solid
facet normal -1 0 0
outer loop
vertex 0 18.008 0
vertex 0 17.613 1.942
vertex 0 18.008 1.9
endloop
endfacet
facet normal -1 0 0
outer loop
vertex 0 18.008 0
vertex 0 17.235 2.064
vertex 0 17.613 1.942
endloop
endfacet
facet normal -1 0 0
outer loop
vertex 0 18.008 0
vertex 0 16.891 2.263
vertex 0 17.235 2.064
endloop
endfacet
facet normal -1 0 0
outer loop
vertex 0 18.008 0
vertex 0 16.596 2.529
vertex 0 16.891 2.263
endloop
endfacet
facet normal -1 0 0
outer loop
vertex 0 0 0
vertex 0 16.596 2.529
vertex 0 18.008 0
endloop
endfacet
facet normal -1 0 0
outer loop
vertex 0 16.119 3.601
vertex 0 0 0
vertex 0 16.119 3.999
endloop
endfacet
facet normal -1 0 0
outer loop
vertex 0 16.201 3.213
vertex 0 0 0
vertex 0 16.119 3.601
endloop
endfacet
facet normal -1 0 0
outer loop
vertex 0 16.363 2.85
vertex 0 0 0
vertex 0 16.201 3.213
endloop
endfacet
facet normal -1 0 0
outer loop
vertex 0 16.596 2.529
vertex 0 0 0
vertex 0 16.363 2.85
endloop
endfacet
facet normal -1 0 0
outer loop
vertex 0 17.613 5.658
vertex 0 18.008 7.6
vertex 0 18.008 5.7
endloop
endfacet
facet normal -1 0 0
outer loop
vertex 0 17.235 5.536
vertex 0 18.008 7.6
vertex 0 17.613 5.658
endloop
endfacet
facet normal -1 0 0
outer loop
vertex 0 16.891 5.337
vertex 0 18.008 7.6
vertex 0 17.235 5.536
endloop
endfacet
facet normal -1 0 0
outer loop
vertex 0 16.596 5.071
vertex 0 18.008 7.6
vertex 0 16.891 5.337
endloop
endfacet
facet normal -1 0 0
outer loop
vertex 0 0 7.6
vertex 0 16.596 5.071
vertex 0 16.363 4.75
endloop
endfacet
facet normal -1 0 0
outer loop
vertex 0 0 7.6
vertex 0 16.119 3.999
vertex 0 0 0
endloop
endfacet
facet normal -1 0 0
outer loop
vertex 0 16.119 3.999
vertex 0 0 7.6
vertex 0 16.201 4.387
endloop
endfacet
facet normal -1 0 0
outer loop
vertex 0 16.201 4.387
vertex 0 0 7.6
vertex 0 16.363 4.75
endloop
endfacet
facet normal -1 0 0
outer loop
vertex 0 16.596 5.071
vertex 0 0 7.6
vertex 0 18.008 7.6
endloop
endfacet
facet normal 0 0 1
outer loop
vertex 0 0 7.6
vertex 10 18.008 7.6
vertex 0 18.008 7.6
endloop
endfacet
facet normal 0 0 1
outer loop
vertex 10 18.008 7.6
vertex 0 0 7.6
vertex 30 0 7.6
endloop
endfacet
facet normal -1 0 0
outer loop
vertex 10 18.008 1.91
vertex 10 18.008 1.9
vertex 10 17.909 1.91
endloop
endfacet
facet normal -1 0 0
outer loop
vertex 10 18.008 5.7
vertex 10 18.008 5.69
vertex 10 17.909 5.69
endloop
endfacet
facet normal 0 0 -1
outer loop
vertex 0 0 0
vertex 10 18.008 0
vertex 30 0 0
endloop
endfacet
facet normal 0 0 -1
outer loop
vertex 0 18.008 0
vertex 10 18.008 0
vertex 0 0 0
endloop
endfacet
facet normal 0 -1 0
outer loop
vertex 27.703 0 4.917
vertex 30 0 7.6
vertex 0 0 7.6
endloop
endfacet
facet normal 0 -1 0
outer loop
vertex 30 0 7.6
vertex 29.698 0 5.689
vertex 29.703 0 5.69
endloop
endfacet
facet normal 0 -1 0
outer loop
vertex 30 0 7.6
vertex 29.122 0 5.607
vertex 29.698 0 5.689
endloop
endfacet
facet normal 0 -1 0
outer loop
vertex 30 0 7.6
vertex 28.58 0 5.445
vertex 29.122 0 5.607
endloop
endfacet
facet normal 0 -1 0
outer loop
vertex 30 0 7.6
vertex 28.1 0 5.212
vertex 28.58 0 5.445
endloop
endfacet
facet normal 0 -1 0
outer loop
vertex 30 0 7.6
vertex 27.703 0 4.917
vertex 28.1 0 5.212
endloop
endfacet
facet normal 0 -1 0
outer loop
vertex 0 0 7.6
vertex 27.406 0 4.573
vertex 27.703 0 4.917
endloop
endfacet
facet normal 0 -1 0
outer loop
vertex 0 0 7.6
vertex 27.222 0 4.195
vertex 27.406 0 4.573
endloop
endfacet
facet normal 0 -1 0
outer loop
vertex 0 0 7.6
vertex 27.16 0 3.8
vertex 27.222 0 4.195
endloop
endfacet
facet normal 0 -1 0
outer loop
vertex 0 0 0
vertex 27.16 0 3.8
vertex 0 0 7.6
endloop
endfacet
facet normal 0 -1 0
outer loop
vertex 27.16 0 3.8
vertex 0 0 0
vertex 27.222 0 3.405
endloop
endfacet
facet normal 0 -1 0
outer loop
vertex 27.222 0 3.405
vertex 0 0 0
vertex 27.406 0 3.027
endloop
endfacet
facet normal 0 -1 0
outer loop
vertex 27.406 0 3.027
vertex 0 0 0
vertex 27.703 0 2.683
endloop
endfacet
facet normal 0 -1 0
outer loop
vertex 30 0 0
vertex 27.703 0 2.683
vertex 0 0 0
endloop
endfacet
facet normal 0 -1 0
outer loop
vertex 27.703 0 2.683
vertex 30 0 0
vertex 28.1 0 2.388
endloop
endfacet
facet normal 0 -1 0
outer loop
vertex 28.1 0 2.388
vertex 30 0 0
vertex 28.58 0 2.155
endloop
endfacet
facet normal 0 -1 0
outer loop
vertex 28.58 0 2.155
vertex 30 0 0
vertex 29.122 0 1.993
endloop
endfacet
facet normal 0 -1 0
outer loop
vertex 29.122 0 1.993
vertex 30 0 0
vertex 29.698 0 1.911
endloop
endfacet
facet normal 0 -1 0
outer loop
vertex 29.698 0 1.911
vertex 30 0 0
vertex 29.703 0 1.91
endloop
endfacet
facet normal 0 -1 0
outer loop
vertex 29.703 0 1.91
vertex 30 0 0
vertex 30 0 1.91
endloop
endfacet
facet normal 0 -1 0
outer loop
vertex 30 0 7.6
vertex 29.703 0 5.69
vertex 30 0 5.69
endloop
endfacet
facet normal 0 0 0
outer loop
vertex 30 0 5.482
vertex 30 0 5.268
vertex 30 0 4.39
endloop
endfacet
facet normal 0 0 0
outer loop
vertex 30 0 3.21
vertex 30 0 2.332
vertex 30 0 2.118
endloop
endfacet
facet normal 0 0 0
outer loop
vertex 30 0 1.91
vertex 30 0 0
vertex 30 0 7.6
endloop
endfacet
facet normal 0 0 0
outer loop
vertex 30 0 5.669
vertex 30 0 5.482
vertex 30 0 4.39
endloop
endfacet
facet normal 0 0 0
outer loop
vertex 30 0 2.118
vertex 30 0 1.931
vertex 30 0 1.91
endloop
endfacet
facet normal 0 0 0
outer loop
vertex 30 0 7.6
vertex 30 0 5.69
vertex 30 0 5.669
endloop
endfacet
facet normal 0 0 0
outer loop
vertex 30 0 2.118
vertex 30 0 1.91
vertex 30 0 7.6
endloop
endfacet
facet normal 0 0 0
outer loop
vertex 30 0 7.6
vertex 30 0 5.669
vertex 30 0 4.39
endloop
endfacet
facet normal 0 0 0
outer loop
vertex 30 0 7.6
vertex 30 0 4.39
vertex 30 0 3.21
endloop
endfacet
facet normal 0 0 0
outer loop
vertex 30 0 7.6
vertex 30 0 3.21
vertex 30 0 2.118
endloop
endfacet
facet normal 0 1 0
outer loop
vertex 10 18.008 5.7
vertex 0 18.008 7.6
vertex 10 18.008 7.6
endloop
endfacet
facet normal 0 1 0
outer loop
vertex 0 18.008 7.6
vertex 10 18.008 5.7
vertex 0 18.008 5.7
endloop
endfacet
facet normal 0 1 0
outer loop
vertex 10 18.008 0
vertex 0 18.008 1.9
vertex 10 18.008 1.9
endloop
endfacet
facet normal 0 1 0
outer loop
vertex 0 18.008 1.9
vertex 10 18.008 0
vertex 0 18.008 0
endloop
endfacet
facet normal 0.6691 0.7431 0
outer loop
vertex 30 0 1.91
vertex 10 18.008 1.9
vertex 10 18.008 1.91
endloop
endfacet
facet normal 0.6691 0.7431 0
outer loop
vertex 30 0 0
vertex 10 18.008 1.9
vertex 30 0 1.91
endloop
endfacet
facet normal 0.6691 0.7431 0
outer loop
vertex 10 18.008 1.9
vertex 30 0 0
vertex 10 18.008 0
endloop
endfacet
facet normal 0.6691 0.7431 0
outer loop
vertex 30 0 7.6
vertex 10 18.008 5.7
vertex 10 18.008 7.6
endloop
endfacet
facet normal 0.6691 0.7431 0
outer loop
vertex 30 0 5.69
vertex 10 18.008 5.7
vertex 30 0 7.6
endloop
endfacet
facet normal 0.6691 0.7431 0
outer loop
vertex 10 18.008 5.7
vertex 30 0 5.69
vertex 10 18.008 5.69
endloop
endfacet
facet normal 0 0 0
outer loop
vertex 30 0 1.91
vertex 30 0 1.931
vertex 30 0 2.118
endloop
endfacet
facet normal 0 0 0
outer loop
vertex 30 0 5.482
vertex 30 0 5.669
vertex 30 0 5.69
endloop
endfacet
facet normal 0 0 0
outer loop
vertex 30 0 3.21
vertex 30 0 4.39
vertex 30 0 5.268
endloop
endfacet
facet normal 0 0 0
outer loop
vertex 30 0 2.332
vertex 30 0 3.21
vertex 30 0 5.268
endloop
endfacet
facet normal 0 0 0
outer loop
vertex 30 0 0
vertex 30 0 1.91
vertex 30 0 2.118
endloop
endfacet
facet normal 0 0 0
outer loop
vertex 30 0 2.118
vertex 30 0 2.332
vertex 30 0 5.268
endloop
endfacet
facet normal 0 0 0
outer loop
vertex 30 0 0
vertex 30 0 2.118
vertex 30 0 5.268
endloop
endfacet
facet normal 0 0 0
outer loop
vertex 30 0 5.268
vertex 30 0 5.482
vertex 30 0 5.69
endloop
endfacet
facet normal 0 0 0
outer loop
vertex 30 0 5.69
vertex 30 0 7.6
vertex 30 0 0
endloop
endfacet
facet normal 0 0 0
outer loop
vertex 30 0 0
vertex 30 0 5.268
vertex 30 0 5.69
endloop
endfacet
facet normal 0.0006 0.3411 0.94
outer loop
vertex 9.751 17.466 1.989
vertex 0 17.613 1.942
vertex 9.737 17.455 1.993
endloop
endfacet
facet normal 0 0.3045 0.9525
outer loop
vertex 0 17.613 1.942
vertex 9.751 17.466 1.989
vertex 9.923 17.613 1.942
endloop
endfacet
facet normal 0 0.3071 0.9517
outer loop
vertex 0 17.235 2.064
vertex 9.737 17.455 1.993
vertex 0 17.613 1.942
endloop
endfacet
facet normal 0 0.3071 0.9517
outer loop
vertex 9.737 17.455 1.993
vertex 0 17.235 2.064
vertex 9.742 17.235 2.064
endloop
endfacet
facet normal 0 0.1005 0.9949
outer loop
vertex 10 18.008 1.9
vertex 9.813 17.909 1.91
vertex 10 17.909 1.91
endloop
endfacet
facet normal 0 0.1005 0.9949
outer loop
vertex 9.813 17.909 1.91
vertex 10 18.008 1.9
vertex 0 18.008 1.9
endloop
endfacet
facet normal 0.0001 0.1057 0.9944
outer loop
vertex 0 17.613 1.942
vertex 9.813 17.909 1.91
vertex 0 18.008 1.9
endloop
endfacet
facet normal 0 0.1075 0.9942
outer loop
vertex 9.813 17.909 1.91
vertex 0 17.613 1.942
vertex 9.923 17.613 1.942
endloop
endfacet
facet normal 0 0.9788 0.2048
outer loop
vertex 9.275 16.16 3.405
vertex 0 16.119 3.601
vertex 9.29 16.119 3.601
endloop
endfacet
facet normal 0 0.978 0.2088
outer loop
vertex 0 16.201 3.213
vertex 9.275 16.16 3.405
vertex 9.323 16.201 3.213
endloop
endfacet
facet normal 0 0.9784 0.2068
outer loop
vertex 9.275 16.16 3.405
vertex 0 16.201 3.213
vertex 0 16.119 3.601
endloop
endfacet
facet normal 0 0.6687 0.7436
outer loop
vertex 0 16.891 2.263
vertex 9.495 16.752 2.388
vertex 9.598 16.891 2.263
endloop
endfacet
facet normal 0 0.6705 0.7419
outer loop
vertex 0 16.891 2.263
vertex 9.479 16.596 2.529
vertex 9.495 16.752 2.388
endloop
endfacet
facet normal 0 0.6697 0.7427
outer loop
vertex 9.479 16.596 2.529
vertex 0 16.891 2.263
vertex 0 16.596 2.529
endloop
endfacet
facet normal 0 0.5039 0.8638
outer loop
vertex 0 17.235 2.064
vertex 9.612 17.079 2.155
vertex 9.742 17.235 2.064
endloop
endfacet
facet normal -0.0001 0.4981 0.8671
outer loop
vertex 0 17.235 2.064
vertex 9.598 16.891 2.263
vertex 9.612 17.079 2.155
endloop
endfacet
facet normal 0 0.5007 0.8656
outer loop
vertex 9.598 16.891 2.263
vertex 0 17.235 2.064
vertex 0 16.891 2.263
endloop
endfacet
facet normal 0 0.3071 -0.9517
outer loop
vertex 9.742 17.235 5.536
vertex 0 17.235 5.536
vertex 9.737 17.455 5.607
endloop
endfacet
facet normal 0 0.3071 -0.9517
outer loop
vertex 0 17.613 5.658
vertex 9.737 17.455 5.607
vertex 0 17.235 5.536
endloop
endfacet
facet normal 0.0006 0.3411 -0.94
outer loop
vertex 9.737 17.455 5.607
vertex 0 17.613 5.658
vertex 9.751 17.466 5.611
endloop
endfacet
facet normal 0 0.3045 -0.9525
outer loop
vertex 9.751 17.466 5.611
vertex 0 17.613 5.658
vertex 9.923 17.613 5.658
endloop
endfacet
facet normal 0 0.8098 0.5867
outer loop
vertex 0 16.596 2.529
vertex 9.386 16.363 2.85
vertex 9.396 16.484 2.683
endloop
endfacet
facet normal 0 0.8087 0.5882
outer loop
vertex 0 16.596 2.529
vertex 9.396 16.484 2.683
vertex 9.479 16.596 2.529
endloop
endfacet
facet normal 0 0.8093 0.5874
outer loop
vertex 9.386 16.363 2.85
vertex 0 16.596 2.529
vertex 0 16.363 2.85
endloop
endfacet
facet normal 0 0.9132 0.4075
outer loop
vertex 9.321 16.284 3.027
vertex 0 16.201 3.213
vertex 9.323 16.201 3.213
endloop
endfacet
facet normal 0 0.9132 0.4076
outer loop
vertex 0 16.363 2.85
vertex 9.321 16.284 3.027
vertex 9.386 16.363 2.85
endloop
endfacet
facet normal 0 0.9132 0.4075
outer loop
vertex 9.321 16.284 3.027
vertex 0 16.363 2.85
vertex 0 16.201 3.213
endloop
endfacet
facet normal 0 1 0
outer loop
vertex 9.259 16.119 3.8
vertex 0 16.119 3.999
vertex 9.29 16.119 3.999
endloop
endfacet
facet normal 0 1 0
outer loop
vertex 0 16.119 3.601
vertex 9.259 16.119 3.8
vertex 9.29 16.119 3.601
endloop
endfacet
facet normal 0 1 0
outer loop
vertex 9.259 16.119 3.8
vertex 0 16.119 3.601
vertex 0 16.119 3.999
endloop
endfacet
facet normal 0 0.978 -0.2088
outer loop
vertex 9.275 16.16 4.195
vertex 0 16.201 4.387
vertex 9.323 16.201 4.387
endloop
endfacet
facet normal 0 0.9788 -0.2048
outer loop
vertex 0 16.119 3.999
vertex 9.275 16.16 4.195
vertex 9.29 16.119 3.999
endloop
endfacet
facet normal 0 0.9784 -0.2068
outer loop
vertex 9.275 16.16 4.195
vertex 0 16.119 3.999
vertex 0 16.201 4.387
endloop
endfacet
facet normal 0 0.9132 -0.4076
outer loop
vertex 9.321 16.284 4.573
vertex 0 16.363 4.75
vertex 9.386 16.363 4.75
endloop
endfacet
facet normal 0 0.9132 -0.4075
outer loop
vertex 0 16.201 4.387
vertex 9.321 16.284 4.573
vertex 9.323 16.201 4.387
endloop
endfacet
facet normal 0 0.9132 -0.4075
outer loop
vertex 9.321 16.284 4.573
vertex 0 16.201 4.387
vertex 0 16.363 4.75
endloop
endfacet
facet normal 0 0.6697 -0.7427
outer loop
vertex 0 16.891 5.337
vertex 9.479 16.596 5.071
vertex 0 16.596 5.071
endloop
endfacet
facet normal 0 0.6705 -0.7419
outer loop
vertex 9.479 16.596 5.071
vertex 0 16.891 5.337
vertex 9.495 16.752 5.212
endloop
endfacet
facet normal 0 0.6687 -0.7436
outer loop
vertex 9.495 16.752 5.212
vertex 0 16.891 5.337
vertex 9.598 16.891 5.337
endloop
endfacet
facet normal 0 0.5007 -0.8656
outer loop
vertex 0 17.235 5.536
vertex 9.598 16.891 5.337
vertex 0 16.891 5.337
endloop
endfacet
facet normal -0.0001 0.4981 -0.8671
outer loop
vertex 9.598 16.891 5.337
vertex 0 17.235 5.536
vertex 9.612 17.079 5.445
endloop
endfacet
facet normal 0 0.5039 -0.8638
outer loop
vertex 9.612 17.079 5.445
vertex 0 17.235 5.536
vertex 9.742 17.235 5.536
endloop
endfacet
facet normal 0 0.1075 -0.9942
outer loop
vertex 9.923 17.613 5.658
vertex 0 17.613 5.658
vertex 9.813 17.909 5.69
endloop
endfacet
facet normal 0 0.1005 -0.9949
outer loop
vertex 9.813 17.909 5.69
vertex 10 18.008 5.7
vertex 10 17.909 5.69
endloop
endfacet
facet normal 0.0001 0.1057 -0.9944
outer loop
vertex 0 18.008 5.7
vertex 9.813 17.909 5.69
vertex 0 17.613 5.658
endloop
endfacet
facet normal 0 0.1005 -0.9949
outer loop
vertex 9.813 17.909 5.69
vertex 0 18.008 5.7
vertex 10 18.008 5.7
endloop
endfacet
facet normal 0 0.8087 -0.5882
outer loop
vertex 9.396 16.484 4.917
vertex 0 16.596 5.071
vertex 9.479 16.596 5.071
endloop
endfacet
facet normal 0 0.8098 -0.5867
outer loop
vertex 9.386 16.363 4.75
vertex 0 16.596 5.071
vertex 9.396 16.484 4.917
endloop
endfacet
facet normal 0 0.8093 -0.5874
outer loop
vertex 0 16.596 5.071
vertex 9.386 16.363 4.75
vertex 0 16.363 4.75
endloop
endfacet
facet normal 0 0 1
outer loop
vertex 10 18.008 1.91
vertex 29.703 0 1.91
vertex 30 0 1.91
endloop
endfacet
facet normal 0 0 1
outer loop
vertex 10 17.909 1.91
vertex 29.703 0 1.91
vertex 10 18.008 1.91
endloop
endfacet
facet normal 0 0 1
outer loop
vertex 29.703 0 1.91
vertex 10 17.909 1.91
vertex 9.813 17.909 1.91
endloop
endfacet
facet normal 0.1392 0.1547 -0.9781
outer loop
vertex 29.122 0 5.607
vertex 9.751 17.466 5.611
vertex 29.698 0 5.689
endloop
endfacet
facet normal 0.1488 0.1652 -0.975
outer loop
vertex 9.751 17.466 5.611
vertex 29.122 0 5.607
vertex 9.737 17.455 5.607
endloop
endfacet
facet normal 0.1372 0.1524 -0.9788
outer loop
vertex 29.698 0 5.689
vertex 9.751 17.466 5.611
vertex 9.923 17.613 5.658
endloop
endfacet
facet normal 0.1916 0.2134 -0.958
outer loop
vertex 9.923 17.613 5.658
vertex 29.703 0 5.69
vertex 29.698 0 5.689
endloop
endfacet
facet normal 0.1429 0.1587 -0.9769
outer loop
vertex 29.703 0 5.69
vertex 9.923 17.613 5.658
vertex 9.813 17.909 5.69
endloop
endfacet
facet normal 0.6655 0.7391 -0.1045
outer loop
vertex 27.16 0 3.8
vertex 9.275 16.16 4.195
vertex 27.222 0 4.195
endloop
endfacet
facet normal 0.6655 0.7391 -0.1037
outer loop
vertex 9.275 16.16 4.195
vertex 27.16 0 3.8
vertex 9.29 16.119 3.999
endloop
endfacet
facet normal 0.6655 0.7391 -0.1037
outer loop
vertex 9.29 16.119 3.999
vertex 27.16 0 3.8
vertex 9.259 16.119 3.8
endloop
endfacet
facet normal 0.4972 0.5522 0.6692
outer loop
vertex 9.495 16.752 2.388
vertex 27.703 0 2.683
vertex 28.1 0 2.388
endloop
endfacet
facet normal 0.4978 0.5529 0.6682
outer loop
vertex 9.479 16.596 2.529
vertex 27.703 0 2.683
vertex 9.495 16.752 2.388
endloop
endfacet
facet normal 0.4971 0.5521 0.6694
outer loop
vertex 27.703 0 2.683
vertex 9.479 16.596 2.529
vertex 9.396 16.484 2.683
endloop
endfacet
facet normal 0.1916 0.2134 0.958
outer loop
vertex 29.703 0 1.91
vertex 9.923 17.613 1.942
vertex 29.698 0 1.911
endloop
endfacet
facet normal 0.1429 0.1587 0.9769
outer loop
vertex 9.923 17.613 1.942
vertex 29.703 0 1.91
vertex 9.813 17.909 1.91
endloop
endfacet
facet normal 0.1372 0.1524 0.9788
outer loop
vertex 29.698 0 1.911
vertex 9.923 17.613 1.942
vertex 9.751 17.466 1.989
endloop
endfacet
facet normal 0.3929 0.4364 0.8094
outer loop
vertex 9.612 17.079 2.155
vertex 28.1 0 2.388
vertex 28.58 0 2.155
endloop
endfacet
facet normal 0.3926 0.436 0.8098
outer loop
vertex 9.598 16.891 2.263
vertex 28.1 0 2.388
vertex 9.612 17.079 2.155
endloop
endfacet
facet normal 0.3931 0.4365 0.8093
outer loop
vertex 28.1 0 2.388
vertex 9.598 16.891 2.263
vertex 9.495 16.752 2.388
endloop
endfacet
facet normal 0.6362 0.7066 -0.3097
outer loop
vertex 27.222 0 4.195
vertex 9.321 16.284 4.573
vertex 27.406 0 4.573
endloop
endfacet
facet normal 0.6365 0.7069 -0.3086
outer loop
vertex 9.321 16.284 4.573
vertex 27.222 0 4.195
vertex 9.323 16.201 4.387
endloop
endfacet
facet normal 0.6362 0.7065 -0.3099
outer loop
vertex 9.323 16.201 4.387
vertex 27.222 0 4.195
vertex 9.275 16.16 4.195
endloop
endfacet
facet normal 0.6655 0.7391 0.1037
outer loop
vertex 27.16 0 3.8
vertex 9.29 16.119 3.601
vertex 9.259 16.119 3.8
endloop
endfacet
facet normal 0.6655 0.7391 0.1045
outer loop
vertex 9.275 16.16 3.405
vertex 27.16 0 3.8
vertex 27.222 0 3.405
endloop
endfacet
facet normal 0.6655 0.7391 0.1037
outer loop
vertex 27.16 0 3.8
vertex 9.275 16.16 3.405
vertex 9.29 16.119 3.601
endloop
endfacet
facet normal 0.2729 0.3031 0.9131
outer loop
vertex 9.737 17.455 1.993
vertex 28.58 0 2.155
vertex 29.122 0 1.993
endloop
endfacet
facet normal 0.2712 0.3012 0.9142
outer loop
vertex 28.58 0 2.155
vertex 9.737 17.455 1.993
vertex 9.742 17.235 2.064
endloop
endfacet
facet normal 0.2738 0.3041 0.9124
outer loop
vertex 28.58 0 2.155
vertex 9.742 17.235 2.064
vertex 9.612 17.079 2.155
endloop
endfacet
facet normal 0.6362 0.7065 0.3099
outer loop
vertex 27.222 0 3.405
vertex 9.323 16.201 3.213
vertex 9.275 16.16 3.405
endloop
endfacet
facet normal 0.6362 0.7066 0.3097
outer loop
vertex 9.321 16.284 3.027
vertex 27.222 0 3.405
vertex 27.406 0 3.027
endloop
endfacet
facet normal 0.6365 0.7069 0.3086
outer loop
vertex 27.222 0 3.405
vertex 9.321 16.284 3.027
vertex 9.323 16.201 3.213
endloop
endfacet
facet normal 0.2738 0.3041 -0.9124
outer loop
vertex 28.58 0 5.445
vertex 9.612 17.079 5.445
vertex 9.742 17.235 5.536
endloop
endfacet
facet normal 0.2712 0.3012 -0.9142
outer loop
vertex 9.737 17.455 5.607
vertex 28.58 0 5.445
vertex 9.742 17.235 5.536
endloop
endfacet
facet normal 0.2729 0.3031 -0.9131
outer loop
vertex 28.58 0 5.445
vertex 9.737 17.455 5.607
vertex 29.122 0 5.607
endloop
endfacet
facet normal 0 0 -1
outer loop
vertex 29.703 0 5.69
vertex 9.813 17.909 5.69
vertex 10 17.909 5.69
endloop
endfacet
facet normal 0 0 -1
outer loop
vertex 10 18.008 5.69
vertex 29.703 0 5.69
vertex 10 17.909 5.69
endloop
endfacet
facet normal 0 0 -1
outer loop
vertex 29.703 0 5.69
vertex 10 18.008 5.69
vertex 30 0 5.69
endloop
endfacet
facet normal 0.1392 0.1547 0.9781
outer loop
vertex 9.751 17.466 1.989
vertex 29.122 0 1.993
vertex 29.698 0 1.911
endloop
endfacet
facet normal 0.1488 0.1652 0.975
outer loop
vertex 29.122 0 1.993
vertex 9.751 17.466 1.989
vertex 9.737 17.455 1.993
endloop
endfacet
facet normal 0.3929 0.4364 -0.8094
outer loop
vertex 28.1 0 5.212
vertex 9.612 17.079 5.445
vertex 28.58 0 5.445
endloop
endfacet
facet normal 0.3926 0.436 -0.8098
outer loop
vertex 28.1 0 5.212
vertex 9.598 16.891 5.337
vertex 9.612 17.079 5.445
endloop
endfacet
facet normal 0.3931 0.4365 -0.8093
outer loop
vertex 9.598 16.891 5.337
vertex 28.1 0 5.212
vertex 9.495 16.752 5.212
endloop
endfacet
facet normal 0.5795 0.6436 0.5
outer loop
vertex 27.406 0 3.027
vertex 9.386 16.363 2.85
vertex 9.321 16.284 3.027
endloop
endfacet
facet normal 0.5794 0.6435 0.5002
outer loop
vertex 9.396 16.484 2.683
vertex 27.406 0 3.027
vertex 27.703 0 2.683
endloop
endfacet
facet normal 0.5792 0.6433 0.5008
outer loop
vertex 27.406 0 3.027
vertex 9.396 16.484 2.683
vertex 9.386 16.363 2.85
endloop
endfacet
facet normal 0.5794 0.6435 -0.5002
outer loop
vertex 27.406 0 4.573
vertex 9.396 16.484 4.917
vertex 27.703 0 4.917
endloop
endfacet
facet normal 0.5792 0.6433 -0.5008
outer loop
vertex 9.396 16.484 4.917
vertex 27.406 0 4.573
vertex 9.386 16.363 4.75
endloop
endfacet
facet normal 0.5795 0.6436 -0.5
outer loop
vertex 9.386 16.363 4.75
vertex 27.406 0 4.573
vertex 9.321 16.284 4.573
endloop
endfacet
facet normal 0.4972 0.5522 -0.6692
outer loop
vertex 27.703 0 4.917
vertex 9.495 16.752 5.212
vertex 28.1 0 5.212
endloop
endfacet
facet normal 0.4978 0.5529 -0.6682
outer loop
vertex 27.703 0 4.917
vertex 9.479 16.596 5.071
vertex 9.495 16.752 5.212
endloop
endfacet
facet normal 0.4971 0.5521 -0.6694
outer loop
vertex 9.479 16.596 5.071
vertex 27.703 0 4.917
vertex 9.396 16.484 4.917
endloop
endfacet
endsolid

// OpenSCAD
// Form for bending wire to a particular angle - VE3XEC
// (I intend to use it to bend some radials 42 degrees for a quarter-wave vertical antenna)

wire_od = 3.8; // Outer diameter of radial wire
deck_length = 10; // Length of the slotted horizontal portion
slant_length = 20; // Length of the slotted slanted portion
angle = 42; // Adjust to suit your needs; 42 degrees for quarter-wave radials
$fn = 30; // Cylinder smooveness

difference() {
    union() {
        cube([deck_length, tan(angle) * slant_length, wire_od * 2]);
        translate([deck_length, 0, 0]) {
            linear_extrude(height = wire_od * 2, convexity = 10) {
                polygon(points = [[0, 0], [slant_length, 0], [0, tan(angle) * slant_length]]);
            }
        }
    }
    translate([0, tan(angle) * (slant_length), wire_od]) {
        rotate([0, 90, 0]) {
            cylinder(d = wire_od, h = deck_length);
        }
    }
    translate([deck_length + slant_length, 0, wire_od]) {
        rotate([-90, 0, 90 - angle]) {
            cylinder(d = wire_od, h = (slant_length / 2) + (tan(angle) * slant_length));
        }
    }
}
